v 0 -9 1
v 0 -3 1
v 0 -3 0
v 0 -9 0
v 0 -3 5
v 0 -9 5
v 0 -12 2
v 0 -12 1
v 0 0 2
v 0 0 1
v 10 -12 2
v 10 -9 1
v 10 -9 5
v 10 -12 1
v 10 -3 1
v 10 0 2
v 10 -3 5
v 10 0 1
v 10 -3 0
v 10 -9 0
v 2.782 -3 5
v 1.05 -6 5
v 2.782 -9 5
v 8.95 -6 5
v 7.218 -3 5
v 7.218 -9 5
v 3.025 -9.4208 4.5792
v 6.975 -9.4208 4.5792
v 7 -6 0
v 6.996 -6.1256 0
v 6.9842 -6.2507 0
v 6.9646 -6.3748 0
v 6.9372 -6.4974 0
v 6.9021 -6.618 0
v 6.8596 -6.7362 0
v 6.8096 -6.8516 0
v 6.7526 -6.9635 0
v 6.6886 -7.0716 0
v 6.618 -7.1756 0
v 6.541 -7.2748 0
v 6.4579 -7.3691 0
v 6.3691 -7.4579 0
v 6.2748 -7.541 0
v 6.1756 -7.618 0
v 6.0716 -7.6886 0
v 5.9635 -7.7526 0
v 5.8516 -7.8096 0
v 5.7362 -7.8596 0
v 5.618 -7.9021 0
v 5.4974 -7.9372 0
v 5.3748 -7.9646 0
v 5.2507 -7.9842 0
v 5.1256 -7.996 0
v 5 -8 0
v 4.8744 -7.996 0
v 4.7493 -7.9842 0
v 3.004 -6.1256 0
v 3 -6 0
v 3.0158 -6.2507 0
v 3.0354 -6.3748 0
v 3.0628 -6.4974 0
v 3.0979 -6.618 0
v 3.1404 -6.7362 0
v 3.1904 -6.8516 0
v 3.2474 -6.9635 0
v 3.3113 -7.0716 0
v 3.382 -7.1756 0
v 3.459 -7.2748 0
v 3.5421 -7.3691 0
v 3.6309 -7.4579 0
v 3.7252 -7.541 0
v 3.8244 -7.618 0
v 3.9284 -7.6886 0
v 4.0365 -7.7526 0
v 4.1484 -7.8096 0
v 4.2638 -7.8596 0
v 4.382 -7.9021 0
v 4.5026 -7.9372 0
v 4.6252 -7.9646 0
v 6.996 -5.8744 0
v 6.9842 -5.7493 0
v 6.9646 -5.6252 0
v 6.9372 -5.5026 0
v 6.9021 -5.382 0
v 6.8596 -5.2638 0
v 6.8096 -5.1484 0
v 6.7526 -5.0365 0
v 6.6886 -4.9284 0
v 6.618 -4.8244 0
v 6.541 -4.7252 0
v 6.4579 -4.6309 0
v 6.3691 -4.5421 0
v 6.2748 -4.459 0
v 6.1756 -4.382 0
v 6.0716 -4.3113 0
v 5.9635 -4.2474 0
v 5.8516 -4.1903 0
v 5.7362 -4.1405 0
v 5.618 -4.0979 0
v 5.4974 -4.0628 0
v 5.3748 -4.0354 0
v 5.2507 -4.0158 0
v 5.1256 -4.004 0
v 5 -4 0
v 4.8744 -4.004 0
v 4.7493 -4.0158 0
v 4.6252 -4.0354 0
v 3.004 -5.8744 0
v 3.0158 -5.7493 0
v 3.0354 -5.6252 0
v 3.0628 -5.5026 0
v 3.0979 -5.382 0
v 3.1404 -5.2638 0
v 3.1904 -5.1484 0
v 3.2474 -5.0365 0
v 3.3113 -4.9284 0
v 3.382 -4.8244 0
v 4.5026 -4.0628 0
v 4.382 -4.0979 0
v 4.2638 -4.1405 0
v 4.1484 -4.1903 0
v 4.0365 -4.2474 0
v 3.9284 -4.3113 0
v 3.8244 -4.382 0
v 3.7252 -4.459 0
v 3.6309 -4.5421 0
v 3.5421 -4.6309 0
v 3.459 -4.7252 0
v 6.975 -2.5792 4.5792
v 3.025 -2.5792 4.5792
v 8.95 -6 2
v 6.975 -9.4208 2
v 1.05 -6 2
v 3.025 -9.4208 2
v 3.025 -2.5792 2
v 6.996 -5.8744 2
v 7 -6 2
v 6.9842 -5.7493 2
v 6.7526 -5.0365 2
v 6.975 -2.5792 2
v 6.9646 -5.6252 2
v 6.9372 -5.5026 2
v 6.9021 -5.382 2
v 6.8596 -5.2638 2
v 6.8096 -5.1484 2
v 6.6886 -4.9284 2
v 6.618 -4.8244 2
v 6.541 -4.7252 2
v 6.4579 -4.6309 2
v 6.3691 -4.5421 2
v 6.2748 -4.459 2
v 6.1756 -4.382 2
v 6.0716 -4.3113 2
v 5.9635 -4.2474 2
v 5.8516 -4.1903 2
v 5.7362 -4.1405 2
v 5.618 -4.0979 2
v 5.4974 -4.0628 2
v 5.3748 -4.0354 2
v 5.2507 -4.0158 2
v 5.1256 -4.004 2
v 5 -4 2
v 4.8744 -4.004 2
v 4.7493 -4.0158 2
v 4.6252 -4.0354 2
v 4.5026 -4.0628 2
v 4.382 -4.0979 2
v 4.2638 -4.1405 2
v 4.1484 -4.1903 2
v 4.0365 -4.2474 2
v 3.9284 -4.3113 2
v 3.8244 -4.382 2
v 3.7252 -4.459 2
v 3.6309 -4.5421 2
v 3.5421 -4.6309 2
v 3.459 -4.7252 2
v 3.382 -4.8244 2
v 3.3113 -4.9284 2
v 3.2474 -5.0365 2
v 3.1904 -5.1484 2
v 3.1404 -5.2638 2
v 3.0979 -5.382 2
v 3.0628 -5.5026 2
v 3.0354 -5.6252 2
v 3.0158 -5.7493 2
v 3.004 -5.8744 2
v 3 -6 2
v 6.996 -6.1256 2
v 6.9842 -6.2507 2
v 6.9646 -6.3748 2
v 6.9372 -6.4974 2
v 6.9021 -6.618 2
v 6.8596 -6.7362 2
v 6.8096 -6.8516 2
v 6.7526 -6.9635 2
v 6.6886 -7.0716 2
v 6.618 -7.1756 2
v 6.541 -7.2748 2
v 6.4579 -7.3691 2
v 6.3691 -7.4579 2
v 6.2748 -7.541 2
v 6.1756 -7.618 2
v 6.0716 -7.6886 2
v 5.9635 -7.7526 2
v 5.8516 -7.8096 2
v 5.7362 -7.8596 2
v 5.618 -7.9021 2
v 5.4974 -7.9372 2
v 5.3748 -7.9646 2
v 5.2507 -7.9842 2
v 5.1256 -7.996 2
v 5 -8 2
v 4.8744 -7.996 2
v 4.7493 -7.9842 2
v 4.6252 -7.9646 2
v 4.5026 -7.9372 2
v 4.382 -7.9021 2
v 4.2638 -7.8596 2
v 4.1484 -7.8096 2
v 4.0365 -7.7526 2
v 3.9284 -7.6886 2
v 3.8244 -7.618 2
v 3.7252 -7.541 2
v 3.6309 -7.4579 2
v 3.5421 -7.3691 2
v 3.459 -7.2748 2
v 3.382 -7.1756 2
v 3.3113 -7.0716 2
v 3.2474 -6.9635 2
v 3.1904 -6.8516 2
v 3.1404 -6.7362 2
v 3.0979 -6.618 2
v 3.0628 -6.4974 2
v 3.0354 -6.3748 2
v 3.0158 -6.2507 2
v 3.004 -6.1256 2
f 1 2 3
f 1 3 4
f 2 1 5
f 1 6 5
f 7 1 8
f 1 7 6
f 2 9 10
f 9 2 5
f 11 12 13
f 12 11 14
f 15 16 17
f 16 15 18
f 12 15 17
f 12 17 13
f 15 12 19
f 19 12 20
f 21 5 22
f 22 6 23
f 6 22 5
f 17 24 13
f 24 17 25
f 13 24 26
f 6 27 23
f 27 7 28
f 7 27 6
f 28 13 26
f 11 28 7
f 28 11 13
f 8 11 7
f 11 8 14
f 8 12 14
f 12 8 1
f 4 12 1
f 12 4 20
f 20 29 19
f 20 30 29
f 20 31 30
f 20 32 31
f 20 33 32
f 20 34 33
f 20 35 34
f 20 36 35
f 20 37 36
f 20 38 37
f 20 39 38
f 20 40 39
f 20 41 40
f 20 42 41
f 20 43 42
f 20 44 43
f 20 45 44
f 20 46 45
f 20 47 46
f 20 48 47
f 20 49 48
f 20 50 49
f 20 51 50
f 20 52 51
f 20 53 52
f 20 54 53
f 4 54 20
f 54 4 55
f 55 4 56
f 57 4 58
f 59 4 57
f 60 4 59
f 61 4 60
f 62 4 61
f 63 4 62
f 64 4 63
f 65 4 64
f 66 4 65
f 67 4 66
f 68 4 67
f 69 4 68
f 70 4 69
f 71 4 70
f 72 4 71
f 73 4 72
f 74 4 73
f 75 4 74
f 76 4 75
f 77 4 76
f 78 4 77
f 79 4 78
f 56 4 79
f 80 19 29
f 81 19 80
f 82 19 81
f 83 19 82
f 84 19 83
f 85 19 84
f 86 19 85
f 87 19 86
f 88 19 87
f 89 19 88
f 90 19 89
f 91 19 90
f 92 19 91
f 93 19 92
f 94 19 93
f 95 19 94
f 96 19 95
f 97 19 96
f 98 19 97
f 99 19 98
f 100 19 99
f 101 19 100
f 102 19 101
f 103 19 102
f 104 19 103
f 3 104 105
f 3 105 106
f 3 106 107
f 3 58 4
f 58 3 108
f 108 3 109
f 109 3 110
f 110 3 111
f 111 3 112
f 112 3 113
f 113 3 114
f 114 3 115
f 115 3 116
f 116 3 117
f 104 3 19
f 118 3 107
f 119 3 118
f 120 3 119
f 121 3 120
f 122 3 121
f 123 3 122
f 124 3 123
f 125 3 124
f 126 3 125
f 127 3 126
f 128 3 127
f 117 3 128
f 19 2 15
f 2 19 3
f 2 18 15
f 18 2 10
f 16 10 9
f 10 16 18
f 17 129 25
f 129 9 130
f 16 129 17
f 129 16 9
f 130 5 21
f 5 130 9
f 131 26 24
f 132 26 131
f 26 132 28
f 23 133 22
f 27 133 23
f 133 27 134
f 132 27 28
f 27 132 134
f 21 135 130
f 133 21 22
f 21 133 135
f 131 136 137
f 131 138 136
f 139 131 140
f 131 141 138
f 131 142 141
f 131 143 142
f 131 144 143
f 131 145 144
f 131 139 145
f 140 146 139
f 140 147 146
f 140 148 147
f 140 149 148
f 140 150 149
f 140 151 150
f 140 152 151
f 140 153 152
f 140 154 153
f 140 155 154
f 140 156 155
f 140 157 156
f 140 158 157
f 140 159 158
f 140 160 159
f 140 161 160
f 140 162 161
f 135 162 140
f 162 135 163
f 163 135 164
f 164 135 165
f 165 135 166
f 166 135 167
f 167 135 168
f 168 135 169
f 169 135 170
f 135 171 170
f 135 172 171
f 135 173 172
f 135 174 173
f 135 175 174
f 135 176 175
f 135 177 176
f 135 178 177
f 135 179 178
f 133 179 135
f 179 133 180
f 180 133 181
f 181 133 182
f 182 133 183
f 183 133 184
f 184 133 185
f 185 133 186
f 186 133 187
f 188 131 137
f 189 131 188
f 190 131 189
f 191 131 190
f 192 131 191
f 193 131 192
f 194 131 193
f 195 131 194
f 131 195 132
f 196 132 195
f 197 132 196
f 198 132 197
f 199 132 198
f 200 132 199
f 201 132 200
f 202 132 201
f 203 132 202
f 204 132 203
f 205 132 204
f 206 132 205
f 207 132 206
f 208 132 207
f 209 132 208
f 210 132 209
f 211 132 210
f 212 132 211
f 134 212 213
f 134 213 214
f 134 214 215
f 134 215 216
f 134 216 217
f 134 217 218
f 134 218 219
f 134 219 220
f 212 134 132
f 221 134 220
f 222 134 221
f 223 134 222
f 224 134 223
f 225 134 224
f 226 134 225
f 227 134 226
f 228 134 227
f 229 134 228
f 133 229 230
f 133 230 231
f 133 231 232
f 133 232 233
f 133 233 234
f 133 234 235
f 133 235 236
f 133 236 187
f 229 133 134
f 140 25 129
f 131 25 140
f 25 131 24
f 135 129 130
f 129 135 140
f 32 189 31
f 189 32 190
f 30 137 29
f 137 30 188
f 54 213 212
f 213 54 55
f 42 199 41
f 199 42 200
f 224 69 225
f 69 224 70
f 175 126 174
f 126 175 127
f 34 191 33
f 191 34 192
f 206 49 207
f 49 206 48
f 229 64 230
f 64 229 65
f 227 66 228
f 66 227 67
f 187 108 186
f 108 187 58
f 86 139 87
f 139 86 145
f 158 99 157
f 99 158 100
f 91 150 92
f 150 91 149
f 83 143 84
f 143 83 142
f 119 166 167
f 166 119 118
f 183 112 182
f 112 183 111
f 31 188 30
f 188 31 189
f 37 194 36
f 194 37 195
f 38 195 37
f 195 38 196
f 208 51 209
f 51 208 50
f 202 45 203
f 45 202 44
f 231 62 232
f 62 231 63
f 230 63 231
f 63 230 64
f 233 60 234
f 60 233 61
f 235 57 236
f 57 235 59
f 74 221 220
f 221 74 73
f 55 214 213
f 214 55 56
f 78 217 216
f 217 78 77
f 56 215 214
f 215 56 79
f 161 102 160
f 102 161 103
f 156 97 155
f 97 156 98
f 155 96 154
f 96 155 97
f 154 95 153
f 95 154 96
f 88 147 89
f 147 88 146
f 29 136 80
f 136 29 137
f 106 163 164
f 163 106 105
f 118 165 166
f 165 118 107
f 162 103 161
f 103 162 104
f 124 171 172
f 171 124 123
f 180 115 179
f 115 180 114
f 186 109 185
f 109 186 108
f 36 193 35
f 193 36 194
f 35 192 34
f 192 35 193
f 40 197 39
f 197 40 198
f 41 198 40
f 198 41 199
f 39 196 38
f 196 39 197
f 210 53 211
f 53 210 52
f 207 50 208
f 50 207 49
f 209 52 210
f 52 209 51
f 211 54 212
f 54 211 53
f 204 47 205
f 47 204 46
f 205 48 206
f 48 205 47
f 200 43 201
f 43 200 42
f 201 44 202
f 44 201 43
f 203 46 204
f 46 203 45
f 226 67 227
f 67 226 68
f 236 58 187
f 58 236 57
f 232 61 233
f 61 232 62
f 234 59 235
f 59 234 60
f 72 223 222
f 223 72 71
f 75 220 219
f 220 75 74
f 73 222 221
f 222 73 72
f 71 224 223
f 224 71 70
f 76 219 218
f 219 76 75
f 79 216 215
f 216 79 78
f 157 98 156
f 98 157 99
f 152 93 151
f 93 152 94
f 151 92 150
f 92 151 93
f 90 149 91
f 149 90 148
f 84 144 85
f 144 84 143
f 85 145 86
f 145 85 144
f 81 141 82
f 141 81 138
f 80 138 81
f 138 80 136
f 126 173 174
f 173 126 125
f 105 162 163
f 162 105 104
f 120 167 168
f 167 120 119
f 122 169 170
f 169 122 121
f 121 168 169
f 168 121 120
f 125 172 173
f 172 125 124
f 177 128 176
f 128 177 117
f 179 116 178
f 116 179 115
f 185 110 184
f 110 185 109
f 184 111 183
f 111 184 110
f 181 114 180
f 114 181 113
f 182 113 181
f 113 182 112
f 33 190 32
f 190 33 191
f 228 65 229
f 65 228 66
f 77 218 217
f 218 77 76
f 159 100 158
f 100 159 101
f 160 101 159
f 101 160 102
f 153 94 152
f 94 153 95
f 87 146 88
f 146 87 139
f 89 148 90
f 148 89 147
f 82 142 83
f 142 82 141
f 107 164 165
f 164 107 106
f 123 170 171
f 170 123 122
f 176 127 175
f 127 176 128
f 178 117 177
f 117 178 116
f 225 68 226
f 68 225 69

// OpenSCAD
module t_nut(){
difference(){
rotate([0,90,0])linear_extrude(height = 10)polygon ( points= [ [0,3], [0,9], [1,9], [1,12], [2,12],[5,9],[5,3],[2,0],[1,0],[1,3],]);
translate([5,6,-6])cylinder(r=7.9/2,h=4, $fn=6);
translate([5,6,-6])cylinder(r=2,1,h=10,$fn=100); 
}
}

rotate([180,0,0])t_nut();
